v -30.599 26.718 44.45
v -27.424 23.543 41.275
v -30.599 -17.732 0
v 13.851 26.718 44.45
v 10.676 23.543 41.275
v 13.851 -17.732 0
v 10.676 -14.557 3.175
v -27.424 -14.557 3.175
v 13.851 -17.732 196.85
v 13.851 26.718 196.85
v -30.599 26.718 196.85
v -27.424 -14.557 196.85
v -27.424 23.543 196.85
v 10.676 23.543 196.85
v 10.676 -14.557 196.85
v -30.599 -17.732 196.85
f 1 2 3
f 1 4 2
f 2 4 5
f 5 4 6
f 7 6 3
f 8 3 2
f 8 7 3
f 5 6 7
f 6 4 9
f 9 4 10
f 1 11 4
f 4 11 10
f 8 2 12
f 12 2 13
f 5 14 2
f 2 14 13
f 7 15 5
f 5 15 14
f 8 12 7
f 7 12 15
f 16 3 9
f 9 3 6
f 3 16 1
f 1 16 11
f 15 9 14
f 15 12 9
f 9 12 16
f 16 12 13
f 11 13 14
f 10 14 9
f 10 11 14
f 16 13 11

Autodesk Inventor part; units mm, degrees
ref_plane "YZ Plane" through (0, 0, 0) normal (1, 0, 0) x (0, 1, 0)
ref_plane "XZ Plane" through (0, 0, 0) normal (0, 1, 0) x (-1, 0, 0)
ref_plane "XY Plane" through (0, 0, 0) normal (0, 0, 1) x (1, 0, 0)
sketch "Sketch1" plane through (0, 0, 0) normal (0, 0, 1) x (1, 0, 0)
  line L0 (-30.5992, 26.7179) -> (13.8508, 26.7179)
  line L1 (13.8508, 26.7179) -> (13.8508, -17.7321)
  line L2 (13.8508, -17.7321) -> (-30.5992, -17.7321)
  line L3 (-30.5992, -17.7321) -> (-30.5992, 26.7179)
  dimension "d0" = 44.45
  dimension "d1" = 44.45
extrude "Extrusion1" add sketch "Sketch1" along normal blind 196.85
shell "Shell1" thickness 3.175 removed faces 2 at (-15.7825, -2.9154, 0) at (-15.7825, -2.9154, 196.85)
sketch "Sketch2" plane through (13.8508, -17.7321, 0) normal (1, 0, 0) x (0, 0, -1)
  line L0 (0, 0) -> (-196.85, 0) projected
  line L1 (0, 44.45) -> (0, 0) projected
  line L2 (0, 44.45) -> (-196.85, 44.45) projected
  line L3 (0, 0) -> (-44.45, 44.45)
  dimension "d5" = 45
extrude "Extrusion2" cut sketch "Sketch2" against normal through all
properties part number "FE-00001-01"
